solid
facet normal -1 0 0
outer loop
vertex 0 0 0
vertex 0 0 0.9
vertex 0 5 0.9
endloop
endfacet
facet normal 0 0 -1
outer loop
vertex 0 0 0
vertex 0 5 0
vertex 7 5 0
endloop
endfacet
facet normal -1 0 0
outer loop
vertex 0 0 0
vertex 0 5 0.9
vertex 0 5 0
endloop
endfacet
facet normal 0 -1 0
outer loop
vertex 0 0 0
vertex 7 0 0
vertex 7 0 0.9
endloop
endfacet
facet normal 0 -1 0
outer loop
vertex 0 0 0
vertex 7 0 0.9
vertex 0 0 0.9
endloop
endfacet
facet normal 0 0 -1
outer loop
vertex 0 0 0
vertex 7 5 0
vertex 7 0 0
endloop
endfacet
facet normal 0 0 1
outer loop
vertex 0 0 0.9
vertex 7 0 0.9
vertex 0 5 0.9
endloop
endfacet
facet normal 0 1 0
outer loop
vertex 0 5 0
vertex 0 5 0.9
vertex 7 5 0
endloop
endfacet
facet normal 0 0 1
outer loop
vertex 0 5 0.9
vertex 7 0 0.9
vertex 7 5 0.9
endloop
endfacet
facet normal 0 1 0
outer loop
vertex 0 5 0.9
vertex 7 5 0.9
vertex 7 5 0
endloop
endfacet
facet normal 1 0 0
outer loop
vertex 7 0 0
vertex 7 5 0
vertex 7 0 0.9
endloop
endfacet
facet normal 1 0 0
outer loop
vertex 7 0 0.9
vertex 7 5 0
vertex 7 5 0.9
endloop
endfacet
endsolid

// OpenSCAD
/* Warning, this is a very basic generator with a lot of approximation 
input data : [VQFN, SJB, 7x5x0.9mm, 38, , B, C04-21411B]
generated by com.zoubworld.electronics.cad.model3d.Basic
Date : Sun Feb 15 10:50:49 CET 2026
*/

//body
color("black")
translate([0,0,0])
cube([7.0,5.0,0.9], center=false);
